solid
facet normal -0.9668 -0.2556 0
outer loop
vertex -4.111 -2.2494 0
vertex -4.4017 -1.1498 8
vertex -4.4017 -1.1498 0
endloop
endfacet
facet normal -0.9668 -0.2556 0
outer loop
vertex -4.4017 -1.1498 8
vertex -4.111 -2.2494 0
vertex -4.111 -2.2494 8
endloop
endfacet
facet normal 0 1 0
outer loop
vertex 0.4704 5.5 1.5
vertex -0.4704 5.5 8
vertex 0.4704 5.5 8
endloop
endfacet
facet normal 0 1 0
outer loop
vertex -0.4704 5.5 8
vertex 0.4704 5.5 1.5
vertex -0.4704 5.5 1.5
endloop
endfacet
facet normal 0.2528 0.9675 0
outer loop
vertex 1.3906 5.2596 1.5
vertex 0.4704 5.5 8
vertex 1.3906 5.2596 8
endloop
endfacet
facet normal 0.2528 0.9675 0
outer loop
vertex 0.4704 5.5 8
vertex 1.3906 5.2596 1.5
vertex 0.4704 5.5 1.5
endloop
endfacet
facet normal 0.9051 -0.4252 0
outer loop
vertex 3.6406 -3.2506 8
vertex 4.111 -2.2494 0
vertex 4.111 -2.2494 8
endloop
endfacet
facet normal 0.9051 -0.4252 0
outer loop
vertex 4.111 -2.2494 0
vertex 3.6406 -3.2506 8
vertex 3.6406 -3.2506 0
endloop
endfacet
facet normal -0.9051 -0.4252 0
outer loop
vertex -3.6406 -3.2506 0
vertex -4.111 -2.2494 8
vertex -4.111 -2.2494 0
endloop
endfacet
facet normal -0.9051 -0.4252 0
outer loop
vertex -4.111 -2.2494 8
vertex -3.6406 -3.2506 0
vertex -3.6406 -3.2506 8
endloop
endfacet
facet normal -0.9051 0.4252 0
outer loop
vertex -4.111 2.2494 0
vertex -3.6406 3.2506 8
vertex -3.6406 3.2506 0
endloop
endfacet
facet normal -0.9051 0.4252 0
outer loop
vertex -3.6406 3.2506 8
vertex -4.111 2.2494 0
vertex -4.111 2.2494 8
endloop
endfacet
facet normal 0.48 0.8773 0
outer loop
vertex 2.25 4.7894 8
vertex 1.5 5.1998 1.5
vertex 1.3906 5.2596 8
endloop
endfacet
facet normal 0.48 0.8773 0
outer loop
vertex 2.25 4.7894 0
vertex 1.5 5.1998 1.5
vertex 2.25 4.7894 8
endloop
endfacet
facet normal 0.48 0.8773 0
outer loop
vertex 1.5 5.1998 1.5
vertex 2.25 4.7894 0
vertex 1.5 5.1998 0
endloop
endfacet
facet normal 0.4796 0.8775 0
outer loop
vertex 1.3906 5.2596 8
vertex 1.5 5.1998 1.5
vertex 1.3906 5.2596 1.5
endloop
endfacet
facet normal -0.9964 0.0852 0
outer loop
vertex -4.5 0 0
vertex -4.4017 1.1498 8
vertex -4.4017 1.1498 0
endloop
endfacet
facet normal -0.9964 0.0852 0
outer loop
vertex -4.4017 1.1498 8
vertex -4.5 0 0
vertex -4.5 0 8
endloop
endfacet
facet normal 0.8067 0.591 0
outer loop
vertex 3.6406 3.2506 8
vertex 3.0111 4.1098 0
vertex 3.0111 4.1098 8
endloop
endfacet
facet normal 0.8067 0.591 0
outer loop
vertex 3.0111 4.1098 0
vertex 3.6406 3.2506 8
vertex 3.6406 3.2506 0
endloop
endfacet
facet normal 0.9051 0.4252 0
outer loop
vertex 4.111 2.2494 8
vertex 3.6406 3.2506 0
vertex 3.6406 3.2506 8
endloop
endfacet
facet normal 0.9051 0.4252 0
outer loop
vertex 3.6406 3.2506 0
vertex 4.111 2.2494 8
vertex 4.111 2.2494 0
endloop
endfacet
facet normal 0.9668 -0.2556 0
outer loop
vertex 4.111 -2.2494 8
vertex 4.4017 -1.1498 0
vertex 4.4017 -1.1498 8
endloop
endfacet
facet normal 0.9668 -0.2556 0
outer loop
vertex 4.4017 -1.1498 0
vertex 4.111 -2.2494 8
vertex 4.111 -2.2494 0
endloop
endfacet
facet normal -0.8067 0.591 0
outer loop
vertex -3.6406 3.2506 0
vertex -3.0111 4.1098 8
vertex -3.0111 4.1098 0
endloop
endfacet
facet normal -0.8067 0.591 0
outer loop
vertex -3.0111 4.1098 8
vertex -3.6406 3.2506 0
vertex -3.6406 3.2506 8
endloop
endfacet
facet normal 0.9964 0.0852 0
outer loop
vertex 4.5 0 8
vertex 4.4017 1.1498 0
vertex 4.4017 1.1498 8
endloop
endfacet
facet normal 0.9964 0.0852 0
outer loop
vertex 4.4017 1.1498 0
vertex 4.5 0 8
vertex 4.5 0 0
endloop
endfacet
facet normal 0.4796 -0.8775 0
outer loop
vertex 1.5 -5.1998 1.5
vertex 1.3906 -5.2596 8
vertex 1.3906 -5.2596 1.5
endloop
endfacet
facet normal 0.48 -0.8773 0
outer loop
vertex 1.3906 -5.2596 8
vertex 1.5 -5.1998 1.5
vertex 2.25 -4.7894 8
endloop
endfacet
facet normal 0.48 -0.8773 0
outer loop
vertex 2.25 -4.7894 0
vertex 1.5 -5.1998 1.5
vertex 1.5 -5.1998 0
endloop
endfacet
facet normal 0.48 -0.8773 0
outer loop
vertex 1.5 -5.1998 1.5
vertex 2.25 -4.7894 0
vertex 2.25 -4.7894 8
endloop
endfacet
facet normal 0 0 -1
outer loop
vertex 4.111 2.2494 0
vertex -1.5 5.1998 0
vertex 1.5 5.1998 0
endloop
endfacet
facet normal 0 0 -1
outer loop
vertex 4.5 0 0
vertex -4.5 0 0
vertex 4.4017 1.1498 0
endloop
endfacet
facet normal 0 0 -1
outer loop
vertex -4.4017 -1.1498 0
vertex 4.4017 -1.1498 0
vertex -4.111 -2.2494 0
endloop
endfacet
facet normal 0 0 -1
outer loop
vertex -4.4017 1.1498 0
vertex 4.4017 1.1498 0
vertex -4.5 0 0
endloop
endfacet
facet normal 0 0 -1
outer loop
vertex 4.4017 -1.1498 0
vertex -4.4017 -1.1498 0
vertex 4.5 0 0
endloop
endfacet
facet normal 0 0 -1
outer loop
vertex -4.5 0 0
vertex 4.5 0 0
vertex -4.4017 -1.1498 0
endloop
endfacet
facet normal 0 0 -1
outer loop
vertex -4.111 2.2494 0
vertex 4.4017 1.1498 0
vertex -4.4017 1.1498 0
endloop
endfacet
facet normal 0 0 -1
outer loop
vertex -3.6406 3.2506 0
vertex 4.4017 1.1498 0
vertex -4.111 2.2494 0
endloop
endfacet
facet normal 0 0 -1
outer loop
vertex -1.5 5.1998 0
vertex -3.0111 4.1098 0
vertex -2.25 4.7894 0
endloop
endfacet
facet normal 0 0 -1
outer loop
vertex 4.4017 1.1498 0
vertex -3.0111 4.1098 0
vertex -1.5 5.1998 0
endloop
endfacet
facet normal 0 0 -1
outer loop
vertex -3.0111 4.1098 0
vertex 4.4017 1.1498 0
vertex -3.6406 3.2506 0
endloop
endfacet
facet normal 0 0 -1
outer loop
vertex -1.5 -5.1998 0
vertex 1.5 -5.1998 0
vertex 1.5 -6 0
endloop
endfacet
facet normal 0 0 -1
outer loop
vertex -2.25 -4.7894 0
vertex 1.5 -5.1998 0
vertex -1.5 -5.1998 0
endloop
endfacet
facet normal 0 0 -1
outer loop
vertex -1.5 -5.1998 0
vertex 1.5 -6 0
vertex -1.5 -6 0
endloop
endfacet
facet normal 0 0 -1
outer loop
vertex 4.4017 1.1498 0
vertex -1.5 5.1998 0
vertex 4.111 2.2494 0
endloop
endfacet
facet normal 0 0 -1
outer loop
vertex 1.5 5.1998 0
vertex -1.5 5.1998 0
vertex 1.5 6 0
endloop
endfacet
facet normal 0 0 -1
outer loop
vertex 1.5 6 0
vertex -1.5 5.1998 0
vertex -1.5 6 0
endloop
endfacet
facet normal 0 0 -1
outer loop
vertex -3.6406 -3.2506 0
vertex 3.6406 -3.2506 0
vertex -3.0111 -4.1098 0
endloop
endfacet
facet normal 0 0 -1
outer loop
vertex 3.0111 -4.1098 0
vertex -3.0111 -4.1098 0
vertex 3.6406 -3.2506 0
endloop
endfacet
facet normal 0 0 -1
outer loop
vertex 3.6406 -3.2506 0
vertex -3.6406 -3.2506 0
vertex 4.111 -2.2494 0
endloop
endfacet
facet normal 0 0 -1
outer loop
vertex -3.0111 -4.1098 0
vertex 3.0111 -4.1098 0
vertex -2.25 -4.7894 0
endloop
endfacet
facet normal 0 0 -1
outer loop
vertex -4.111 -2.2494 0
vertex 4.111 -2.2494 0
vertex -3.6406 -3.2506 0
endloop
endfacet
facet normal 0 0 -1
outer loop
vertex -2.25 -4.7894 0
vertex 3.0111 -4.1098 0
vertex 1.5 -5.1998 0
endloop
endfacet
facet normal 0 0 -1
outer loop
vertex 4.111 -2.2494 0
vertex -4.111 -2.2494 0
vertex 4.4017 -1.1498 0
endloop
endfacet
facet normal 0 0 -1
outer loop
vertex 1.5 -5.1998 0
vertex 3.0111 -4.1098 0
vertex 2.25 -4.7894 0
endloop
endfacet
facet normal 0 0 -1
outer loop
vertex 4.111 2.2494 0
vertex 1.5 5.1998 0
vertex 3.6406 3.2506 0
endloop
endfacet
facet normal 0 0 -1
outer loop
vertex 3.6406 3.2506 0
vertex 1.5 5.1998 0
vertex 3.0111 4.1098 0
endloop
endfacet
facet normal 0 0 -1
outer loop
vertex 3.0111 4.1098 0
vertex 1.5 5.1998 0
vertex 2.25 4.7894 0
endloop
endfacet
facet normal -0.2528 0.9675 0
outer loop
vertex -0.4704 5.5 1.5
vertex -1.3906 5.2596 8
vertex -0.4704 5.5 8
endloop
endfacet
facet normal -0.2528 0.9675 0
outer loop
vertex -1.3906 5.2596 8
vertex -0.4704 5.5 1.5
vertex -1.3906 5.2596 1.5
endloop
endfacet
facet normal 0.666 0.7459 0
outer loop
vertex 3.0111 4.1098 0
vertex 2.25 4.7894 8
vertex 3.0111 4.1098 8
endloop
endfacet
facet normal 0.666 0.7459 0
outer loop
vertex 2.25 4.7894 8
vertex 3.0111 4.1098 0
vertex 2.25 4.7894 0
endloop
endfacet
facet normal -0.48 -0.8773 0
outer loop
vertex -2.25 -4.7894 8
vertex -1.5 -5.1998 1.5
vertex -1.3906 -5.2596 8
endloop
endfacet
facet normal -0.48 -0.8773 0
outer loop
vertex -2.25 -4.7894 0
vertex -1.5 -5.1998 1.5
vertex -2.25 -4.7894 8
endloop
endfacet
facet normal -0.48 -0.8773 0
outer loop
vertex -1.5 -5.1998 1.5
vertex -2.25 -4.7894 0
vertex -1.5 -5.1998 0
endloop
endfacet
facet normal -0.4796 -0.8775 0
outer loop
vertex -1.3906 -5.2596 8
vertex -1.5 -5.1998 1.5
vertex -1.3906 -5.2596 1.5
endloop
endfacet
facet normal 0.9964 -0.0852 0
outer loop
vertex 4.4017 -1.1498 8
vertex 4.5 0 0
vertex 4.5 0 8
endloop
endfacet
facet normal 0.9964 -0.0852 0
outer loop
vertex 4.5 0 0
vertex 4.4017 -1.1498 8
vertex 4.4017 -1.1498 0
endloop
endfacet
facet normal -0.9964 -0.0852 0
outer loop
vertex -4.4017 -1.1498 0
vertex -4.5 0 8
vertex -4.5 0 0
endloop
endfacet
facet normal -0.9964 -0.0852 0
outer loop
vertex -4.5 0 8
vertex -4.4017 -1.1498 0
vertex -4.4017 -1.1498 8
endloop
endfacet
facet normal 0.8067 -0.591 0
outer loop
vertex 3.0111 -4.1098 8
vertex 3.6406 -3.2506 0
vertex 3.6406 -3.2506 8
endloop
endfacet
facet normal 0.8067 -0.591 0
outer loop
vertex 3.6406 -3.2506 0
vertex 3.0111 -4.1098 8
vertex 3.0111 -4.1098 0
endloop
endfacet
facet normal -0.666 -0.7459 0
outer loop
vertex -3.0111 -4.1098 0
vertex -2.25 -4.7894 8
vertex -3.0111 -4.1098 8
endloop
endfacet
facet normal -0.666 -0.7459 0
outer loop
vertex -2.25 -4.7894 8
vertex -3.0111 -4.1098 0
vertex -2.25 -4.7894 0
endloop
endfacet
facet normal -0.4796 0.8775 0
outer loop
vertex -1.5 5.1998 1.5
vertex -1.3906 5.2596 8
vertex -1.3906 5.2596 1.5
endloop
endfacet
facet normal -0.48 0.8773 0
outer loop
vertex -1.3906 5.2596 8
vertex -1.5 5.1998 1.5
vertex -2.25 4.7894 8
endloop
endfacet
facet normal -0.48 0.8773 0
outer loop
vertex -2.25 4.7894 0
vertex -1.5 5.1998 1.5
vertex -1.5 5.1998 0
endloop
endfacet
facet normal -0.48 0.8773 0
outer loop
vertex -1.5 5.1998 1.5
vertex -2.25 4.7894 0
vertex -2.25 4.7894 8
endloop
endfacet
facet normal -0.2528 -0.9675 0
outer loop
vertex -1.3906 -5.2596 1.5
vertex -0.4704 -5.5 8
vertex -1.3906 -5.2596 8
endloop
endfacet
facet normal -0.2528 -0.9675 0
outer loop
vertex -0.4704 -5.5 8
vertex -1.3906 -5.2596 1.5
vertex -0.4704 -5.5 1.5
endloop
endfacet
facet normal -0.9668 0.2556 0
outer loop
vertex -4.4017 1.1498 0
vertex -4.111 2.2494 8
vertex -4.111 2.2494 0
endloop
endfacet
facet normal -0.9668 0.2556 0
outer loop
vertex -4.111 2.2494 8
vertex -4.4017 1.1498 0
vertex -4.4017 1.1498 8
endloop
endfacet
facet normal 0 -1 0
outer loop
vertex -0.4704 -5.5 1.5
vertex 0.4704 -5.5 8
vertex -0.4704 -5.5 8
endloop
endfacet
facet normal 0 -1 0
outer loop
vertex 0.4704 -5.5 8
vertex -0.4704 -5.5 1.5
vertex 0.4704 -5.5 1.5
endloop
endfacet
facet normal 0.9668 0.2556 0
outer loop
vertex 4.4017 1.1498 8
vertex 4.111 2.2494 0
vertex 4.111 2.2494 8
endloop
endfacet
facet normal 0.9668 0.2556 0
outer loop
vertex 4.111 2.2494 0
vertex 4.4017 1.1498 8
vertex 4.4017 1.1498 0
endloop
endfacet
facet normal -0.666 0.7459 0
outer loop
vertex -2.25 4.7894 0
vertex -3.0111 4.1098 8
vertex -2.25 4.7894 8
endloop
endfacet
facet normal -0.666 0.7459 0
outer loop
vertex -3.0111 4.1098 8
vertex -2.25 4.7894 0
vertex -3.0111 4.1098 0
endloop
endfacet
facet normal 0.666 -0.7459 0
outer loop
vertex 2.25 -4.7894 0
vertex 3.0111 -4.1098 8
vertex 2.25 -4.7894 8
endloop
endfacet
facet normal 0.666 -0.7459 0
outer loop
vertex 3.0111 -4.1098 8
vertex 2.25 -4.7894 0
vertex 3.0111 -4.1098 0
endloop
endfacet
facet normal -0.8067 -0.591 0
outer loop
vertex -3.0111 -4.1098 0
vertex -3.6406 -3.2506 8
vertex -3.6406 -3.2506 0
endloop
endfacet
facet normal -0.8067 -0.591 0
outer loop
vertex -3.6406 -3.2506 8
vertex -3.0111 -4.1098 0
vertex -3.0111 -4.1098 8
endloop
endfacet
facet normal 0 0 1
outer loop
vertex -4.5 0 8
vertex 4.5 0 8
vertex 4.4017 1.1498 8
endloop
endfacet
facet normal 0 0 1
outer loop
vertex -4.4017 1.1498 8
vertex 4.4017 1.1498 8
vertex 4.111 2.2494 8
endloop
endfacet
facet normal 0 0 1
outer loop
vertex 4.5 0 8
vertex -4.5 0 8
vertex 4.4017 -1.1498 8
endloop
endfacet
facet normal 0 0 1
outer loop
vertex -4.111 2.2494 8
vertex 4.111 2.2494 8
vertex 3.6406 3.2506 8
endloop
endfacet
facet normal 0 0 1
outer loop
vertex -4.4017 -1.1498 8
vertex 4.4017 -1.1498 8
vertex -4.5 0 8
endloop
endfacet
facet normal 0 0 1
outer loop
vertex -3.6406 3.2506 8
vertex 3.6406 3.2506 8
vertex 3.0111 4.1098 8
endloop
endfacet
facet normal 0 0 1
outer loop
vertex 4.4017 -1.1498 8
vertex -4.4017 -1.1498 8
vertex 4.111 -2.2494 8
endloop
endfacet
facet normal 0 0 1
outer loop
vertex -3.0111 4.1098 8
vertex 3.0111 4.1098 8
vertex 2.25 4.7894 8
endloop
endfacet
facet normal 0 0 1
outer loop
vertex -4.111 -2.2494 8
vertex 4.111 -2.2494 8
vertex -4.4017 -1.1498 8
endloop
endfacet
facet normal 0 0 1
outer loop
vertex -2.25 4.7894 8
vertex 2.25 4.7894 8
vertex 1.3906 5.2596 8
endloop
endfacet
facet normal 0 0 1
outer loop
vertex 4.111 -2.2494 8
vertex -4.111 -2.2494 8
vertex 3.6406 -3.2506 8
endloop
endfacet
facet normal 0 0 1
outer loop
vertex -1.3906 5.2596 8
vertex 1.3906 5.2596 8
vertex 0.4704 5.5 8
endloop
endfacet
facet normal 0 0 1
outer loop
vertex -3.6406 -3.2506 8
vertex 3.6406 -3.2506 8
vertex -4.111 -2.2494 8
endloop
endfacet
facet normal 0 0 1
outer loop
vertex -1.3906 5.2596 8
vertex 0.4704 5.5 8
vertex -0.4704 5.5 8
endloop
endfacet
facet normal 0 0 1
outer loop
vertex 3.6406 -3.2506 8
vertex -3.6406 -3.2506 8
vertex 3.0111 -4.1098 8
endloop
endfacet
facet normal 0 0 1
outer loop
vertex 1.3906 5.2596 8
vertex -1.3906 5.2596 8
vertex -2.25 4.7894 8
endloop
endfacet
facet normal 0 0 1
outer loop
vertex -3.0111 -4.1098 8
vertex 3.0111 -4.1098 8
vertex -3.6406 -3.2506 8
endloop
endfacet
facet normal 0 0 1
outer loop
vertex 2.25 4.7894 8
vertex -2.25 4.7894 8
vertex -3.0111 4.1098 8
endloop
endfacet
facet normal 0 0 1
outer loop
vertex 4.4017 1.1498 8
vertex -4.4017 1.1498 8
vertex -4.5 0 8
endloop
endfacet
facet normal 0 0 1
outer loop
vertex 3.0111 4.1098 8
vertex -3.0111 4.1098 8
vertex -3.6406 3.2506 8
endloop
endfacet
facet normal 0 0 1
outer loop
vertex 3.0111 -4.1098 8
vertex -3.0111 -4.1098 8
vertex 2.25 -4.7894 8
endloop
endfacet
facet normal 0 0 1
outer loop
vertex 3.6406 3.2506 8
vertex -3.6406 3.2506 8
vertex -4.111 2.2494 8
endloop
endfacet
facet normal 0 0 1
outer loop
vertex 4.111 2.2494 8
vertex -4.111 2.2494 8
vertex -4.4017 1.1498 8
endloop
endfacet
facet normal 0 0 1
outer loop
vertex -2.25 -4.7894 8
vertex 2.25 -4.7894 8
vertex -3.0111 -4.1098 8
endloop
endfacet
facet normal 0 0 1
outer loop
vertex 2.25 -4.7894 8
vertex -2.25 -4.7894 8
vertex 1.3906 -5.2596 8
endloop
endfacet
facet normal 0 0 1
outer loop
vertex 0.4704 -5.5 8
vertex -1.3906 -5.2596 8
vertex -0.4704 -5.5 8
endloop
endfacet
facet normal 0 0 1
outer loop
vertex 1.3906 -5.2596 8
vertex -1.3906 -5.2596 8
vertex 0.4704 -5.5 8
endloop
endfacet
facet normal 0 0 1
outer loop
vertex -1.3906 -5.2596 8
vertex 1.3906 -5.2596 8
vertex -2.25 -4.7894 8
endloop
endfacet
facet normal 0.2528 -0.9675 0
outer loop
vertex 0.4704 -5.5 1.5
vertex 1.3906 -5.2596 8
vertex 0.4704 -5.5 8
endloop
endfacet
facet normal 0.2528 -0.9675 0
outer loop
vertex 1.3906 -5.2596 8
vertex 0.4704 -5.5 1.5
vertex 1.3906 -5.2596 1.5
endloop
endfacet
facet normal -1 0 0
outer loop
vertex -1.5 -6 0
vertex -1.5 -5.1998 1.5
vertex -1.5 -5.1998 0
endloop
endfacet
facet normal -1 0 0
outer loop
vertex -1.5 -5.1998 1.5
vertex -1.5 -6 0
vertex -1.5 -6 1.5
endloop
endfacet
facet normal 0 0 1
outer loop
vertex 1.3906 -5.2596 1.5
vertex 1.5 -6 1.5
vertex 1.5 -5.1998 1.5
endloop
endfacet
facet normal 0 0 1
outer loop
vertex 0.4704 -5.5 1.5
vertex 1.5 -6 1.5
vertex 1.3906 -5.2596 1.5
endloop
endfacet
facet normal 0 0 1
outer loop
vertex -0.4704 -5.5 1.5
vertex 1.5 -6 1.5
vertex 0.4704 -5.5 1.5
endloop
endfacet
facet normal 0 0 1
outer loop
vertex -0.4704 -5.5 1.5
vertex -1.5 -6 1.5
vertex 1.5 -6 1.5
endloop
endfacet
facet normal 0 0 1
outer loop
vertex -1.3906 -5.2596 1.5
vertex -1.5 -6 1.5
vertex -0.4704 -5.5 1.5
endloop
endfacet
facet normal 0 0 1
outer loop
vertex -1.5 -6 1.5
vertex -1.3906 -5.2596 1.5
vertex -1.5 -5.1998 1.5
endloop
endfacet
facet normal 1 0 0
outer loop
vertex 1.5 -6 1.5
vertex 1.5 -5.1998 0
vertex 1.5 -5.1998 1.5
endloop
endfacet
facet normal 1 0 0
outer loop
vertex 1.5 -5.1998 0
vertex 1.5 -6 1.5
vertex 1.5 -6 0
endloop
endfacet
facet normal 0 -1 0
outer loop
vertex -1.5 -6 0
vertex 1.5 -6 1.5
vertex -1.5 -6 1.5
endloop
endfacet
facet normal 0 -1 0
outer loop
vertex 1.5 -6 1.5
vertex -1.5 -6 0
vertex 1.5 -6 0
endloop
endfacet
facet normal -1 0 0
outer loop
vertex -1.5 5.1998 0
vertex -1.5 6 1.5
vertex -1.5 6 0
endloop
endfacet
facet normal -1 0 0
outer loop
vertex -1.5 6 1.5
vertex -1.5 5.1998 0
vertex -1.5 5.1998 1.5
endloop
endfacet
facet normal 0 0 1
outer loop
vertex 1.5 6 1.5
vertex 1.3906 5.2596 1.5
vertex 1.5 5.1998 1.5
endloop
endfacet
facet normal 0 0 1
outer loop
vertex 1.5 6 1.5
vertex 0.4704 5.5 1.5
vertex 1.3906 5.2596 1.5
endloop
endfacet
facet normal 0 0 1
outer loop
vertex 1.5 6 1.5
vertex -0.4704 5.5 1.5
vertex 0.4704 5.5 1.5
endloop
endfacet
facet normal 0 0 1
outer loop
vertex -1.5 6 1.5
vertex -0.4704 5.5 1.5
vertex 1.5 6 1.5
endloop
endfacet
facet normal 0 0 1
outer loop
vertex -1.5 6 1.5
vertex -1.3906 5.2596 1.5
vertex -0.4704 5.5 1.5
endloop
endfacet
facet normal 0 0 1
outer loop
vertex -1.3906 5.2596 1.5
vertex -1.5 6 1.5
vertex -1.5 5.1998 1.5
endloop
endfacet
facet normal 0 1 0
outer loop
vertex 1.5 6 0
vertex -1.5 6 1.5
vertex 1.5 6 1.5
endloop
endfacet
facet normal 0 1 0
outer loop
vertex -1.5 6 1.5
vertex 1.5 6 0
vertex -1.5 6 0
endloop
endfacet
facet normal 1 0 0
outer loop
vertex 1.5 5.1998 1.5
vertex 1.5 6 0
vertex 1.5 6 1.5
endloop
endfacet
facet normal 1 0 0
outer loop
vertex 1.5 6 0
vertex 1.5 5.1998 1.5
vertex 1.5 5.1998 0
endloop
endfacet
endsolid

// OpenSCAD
linear_extrude(height=8)
resize([9, 11])
circle(10);

translate([0, -5])
linear_extrude(height=1.5)
square([3, 2],center=true);

translate([0, 5])
linear_extrude(height=1.5)
square([3, 2],center=true);
